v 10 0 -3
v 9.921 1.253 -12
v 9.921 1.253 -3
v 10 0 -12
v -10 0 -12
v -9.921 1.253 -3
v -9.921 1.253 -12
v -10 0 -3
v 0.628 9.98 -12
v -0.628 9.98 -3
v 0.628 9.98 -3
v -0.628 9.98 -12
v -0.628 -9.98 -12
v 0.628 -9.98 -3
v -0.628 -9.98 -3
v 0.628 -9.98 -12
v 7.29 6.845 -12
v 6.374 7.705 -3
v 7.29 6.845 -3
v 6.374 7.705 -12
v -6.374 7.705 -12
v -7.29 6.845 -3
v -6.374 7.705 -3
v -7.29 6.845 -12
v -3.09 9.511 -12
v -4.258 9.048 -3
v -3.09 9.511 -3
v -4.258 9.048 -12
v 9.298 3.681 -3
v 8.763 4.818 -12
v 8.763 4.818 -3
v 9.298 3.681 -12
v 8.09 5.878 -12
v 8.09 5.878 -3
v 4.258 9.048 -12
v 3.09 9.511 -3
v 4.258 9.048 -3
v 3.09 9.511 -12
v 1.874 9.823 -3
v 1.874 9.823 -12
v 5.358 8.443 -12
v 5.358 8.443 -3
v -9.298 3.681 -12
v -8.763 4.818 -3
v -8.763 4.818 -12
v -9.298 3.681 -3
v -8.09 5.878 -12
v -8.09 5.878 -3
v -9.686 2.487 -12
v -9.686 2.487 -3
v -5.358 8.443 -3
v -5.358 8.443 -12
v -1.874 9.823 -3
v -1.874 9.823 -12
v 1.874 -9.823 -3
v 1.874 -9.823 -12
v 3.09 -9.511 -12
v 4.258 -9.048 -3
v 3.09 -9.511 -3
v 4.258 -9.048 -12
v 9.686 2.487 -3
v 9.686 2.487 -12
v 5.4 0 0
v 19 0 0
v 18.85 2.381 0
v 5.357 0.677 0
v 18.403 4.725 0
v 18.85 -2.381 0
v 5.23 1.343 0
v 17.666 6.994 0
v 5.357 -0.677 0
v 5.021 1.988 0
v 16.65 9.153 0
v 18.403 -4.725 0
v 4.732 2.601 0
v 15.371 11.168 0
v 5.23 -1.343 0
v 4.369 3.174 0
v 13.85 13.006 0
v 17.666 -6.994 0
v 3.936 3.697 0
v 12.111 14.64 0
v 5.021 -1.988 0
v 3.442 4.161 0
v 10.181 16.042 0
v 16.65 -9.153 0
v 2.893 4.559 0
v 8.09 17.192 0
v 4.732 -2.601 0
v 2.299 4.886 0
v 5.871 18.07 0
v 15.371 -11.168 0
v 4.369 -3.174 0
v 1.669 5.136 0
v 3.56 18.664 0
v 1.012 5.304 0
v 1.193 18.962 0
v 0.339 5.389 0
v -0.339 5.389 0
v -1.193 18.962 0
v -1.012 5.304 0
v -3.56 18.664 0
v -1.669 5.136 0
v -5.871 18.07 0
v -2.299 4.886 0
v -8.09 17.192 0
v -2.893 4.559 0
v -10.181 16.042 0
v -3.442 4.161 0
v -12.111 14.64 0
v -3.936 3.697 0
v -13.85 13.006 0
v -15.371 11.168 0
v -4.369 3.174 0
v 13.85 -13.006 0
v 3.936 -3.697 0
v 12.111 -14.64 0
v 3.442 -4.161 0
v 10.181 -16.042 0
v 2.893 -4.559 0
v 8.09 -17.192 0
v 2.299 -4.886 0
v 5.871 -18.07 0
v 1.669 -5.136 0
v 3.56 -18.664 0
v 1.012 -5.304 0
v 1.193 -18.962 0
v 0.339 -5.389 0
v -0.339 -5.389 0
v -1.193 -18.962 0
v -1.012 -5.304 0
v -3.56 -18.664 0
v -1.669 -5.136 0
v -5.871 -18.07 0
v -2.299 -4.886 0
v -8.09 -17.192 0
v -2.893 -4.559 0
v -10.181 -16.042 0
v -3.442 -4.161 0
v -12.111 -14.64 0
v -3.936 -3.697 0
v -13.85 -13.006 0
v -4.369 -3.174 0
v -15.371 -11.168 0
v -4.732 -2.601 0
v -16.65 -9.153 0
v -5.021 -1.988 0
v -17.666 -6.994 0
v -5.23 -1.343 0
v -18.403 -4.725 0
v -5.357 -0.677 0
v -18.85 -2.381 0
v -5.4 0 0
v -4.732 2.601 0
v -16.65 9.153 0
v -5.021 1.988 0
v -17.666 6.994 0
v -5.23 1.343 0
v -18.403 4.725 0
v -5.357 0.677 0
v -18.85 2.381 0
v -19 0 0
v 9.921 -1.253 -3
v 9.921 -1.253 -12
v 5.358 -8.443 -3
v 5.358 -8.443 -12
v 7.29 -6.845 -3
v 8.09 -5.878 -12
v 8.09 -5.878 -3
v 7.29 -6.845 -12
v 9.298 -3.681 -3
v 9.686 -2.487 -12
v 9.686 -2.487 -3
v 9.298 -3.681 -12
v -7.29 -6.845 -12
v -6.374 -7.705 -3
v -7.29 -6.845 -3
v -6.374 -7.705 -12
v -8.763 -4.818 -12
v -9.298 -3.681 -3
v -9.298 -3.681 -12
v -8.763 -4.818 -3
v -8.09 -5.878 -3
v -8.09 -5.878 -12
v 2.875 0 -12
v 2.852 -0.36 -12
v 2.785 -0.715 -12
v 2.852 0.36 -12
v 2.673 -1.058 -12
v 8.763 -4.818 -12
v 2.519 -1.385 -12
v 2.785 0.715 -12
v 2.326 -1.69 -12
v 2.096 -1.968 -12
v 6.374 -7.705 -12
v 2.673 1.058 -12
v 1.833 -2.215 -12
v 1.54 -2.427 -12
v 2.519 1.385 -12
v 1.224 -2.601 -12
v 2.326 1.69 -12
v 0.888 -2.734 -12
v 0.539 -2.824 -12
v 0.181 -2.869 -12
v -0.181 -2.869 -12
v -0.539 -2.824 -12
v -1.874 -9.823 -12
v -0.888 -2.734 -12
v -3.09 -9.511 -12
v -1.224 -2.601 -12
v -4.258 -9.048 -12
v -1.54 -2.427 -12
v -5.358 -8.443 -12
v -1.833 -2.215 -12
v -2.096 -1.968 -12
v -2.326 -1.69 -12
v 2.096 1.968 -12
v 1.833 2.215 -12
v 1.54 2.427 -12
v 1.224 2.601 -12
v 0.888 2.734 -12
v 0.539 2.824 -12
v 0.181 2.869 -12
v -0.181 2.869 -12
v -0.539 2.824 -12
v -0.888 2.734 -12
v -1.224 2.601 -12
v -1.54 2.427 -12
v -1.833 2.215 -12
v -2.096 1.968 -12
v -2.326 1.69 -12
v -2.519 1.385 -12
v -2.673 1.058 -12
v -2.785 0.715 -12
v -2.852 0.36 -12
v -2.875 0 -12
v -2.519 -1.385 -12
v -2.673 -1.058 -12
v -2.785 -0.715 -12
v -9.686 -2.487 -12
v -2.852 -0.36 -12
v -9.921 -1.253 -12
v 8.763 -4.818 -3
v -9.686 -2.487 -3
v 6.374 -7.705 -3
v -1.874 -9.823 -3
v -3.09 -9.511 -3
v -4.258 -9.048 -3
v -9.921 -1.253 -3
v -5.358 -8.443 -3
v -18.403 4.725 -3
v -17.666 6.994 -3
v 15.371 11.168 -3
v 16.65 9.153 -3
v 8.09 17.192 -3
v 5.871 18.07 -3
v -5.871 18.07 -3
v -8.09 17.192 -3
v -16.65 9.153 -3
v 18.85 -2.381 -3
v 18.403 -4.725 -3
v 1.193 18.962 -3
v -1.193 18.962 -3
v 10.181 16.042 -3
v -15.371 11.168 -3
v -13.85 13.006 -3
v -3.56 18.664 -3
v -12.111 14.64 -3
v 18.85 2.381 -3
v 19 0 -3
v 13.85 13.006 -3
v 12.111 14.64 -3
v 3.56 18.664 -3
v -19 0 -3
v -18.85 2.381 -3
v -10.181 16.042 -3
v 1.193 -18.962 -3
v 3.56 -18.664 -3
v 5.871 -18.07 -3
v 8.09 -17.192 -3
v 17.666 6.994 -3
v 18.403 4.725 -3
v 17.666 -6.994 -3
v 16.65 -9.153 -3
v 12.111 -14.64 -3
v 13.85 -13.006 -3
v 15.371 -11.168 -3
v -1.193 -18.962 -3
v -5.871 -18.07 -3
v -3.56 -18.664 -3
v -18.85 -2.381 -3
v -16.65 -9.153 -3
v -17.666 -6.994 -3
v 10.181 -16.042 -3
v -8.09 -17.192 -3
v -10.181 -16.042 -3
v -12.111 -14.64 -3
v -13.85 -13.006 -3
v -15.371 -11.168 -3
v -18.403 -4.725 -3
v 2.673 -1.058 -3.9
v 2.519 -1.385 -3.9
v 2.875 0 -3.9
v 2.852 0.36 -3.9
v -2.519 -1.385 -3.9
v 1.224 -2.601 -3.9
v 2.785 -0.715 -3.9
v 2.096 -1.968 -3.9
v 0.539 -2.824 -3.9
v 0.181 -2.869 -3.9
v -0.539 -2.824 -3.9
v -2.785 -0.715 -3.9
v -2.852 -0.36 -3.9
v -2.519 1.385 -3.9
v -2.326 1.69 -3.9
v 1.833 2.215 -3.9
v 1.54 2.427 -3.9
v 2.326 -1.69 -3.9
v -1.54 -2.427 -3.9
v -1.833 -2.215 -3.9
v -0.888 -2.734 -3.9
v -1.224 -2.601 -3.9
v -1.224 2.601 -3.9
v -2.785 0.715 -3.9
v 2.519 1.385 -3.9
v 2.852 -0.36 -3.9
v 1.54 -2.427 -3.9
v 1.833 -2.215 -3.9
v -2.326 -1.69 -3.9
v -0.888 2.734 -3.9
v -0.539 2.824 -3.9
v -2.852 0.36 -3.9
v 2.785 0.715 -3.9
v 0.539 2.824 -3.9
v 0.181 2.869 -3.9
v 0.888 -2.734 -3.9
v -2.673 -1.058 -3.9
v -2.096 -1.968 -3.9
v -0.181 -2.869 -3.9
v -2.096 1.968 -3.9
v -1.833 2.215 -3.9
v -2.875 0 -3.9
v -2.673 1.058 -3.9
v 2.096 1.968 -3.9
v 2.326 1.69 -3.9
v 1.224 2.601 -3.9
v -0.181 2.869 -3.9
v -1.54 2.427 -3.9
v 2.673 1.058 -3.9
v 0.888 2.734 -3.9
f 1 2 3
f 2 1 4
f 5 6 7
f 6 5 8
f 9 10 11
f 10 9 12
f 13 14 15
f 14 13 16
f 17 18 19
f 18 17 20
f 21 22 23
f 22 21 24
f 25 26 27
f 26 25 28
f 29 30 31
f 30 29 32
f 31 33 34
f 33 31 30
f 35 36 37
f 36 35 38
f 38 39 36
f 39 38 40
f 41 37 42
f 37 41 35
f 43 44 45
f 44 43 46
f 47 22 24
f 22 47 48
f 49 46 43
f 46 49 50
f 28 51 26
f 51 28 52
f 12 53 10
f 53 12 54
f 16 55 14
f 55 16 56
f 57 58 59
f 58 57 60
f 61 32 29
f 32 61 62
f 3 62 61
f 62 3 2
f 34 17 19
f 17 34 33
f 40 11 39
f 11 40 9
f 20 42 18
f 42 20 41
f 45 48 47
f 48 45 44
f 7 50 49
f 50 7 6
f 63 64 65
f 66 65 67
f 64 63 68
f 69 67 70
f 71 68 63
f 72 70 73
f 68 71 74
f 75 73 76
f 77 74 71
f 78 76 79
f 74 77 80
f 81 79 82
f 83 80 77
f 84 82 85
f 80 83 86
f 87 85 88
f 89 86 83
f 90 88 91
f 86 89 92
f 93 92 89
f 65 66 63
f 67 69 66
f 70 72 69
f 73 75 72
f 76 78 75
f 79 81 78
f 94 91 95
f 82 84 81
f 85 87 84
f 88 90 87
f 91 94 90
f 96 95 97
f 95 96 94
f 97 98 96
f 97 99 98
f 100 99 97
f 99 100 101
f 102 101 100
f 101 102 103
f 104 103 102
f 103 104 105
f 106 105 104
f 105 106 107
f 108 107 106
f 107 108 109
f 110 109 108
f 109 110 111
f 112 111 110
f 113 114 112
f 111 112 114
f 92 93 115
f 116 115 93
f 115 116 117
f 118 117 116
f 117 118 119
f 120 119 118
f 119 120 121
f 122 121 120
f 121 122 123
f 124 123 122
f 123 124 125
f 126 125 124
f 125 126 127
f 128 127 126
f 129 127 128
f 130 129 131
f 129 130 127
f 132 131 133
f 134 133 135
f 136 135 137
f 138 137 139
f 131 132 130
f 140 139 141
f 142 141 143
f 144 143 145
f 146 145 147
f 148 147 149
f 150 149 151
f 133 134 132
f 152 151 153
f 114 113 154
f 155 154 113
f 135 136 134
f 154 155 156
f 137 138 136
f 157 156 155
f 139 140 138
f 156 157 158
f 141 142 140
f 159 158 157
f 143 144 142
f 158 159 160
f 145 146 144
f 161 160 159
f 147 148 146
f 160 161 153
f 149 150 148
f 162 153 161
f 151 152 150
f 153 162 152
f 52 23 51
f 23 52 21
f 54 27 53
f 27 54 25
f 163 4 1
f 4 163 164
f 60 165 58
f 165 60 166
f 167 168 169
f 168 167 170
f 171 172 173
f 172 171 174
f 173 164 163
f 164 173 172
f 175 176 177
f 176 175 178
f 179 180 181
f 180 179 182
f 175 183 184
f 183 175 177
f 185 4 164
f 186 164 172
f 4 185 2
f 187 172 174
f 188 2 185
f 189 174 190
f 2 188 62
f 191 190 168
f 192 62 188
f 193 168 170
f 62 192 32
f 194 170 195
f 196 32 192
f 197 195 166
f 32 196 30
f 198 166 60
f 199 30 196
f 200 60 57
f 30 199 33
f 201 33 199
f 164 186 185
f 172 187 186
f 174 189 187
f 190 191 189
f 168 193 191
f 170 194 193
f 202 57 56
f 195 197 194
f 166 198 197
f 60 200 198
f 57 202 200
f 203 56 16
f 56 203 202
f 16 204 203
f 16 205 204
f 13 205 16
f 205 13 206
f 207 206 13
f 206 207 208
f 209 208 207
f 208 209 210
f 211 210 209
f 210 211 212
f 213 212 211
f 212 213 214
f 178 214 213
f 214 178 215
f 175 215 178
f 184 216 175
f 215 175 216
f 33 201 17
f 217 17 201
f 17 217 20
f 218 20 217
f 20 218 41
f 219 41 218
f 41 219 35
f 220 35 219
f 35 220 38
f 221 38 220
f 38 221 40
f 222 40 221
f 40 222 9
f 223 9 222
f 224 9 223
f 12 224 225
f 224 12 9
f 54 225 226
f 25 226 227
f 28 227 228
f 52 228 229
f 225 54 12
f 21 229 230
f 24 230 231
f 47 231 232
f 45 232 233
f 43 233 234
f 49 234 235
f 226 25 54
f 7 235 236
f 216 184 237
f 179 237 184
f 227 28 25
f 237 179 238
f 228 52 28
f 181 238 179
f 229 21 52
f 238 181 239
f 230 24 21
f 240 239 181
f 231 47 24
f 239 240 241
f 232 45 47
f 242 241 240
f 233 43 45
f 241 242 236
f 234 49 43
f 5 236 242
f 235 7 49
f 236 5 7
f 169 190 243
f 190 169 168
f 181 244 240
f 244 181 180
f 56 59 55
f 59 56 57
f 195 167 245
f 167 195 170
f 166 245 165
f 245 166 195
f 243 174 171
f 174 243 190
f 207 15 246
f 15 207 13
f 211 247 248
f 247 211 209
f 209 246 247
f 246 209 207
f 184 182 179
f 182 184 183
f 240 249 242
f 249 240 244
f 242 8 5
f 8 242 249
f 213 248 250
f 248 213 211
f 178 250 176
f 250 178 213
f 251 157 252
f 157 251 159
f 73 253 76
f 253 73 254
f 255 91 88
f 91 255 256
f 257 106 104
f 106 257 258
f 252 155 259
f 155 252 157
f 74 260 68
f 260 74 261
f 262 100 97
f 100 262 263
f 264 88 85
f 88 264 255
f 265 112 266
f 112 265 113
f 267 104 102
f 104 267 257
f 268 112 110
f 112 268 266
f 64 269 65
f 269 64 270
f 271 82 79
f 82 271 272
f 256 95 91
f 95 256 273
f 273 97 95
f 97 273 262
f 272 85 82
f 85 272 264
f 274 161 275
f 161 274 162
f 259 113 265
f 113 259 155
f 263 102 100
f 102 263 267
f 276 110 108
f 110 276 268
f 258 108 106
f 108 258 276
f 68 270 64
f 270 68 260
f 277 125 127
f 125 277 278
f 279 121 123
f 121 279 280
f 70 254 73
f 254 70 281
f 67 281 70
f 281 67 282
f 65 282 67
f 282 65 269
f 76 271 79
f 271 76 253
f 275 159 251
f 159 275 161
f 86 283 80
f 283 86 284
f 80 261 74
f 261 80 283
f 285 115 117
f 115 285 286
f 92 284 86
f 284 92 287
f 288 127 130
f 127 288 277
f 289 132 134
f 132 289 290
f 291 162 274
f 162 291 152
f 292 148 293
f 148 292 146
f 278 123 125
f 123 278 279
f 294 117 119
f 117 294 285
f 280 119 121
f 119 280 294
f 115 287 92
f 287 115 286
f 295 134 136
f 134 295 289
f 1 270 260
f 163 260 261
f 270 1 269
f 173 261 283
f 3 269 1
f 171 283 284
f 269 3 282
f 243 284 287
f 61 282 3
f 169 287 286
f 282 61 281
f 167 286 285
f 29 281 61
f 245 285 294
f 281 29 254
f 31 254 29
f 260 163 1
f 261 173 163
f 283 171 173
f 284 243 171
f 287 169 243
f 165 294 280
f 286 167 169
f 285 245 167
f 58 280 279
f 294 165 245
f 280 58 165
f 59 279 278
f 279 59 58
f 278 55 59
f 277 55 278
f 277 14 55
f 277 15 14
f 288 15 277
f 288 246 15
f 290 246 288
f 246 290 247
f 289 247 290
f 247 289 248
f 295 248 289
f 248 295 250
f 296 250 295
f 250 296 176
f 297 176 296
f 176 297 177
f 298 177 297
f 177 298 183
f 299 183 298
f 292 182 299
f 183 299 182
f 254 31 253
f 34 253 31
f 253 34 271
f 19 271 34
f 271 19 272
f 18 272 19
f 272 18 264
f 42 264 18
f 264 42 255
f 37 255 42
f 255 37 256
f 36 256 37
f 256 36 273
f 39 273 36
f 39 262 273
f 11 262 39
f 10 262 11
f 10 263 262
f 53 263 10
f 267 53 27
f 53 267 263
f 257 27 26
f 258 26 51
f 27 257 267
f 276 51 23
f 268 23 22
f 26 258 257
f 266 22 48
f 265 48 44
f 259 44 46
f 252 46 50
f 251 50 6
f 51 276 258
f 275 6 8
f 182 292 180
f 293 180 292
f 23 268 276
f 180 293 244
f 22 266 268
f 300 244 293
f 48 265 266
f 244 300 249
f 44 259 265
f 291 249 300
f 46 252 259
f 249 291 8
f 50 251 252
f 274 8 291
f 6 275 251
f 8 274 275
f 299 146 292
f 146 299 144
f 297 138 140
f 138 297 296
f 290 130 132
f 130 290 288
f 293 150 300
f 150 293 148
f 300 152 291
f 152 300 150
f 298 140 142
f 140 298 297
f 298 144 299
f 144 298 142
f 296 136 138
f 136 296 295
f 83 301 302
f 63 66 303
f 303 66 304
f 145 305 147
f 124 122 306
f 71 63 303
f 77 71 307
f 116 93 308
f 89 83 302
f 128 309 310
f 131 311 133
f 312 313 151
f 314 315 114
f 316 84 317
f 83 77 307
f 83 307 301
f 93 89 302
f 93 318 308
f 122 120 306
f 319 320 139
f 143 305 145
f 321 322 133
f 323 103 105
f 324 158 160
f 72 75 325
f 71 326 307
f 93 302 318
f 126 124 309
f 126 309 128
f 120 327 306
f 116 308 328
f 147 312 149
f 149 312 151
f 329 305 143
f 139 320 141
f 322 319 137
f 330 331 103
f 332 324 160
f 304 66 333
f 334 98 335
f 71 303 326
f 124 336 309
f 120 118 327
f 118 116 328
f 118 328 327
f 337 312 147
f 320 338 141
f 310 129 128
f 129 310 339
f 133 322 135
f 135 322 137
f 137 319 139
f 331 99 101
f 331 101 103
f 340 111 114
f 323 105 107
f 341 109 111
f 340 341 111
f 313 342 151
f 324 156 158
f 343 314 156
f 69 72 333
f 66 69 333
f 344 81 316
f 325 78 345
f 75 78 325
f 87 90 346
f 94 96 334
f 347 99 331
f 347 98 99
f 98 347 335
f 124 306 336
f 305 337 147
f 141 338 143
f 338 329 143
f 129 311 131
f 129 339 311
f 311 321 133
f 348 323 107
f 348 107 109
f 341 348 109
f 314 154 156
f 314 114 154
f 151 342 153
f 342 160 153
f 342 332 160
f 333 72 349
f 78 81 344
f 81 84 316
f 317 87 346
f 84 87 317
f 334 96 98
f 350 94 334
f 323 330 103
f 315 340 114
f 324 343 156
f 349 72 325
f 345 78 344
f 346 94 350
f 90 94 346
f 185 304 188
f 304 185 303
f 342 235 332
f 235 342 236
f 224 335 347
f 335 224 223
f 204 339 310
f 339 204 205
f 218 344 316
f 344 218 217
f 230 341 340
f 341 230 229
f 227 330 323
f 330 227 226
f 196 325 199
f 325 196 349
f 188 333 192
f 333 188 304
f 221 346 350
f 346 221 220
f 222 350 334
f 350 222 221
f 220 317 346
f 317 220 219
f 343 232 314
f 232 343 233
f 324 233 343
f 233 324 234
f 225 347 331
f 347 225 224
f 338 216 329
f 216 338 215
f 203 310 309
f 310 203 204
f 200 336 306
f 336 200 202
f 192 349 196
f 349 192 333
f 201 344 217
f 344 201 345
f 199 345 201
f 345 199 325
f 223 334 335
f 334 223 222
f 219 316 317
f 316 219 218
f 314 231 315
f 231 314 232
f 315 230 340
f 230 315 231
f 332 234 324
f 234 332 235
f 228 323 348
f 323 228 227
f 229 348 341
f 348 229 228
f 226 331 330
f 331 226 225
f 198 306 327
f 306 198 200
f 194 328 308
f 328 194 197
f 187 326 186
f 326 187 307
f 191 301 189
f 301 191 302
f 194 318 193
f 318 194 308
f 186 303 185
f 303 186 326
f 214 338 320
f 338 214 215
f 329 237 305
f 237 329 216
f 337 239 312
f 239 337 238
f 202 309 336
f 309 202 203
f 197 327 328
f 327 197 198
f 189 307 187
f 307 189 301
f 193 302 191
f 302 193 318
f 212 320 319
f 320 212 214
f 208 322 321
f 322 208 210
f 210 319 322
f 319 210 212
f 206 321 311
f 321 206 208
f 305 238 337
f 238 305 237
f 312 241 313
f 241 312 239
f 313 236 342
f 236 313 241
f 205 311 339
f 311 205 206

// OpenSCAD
$fn = 50;


difference() {
	union() {
		translate(v = [0, 0, -12.0000000000]) {
			cylinder(h = 12, r = 10.0000000000);
		}
		translate(v = [0, 0, -3.0000000000]) {
			cylinder(h = 3, r = 19.0000000000);
		}
	}
	union() {
		translate(v = [0, 0, 0]) {
			rotate(a = [0, 0, 0]) {
				difference() {
					union() {
						#translate(v = [0, 0, -12.0000000000]) {
							cylinder(h = 12, r = 2.6000000000);
						}
						#translate(v = [0, 0, -3.9000000000]) {
							cylinder(h = 3.9000000000, r1 = 2.8750000000, r2 = 5.4000000000);
						}
						#translate(v = [0, 0, -12.0000000000]) {
							cylinder(h = 12, r = 2.8750000000);
						}
						#translate(v = [0, 0, -12.0000000000]) {
							cylinder(h = 12, r = 2.6000000000);
						}
					}
					union();
				}
			}
		}
	}
}
